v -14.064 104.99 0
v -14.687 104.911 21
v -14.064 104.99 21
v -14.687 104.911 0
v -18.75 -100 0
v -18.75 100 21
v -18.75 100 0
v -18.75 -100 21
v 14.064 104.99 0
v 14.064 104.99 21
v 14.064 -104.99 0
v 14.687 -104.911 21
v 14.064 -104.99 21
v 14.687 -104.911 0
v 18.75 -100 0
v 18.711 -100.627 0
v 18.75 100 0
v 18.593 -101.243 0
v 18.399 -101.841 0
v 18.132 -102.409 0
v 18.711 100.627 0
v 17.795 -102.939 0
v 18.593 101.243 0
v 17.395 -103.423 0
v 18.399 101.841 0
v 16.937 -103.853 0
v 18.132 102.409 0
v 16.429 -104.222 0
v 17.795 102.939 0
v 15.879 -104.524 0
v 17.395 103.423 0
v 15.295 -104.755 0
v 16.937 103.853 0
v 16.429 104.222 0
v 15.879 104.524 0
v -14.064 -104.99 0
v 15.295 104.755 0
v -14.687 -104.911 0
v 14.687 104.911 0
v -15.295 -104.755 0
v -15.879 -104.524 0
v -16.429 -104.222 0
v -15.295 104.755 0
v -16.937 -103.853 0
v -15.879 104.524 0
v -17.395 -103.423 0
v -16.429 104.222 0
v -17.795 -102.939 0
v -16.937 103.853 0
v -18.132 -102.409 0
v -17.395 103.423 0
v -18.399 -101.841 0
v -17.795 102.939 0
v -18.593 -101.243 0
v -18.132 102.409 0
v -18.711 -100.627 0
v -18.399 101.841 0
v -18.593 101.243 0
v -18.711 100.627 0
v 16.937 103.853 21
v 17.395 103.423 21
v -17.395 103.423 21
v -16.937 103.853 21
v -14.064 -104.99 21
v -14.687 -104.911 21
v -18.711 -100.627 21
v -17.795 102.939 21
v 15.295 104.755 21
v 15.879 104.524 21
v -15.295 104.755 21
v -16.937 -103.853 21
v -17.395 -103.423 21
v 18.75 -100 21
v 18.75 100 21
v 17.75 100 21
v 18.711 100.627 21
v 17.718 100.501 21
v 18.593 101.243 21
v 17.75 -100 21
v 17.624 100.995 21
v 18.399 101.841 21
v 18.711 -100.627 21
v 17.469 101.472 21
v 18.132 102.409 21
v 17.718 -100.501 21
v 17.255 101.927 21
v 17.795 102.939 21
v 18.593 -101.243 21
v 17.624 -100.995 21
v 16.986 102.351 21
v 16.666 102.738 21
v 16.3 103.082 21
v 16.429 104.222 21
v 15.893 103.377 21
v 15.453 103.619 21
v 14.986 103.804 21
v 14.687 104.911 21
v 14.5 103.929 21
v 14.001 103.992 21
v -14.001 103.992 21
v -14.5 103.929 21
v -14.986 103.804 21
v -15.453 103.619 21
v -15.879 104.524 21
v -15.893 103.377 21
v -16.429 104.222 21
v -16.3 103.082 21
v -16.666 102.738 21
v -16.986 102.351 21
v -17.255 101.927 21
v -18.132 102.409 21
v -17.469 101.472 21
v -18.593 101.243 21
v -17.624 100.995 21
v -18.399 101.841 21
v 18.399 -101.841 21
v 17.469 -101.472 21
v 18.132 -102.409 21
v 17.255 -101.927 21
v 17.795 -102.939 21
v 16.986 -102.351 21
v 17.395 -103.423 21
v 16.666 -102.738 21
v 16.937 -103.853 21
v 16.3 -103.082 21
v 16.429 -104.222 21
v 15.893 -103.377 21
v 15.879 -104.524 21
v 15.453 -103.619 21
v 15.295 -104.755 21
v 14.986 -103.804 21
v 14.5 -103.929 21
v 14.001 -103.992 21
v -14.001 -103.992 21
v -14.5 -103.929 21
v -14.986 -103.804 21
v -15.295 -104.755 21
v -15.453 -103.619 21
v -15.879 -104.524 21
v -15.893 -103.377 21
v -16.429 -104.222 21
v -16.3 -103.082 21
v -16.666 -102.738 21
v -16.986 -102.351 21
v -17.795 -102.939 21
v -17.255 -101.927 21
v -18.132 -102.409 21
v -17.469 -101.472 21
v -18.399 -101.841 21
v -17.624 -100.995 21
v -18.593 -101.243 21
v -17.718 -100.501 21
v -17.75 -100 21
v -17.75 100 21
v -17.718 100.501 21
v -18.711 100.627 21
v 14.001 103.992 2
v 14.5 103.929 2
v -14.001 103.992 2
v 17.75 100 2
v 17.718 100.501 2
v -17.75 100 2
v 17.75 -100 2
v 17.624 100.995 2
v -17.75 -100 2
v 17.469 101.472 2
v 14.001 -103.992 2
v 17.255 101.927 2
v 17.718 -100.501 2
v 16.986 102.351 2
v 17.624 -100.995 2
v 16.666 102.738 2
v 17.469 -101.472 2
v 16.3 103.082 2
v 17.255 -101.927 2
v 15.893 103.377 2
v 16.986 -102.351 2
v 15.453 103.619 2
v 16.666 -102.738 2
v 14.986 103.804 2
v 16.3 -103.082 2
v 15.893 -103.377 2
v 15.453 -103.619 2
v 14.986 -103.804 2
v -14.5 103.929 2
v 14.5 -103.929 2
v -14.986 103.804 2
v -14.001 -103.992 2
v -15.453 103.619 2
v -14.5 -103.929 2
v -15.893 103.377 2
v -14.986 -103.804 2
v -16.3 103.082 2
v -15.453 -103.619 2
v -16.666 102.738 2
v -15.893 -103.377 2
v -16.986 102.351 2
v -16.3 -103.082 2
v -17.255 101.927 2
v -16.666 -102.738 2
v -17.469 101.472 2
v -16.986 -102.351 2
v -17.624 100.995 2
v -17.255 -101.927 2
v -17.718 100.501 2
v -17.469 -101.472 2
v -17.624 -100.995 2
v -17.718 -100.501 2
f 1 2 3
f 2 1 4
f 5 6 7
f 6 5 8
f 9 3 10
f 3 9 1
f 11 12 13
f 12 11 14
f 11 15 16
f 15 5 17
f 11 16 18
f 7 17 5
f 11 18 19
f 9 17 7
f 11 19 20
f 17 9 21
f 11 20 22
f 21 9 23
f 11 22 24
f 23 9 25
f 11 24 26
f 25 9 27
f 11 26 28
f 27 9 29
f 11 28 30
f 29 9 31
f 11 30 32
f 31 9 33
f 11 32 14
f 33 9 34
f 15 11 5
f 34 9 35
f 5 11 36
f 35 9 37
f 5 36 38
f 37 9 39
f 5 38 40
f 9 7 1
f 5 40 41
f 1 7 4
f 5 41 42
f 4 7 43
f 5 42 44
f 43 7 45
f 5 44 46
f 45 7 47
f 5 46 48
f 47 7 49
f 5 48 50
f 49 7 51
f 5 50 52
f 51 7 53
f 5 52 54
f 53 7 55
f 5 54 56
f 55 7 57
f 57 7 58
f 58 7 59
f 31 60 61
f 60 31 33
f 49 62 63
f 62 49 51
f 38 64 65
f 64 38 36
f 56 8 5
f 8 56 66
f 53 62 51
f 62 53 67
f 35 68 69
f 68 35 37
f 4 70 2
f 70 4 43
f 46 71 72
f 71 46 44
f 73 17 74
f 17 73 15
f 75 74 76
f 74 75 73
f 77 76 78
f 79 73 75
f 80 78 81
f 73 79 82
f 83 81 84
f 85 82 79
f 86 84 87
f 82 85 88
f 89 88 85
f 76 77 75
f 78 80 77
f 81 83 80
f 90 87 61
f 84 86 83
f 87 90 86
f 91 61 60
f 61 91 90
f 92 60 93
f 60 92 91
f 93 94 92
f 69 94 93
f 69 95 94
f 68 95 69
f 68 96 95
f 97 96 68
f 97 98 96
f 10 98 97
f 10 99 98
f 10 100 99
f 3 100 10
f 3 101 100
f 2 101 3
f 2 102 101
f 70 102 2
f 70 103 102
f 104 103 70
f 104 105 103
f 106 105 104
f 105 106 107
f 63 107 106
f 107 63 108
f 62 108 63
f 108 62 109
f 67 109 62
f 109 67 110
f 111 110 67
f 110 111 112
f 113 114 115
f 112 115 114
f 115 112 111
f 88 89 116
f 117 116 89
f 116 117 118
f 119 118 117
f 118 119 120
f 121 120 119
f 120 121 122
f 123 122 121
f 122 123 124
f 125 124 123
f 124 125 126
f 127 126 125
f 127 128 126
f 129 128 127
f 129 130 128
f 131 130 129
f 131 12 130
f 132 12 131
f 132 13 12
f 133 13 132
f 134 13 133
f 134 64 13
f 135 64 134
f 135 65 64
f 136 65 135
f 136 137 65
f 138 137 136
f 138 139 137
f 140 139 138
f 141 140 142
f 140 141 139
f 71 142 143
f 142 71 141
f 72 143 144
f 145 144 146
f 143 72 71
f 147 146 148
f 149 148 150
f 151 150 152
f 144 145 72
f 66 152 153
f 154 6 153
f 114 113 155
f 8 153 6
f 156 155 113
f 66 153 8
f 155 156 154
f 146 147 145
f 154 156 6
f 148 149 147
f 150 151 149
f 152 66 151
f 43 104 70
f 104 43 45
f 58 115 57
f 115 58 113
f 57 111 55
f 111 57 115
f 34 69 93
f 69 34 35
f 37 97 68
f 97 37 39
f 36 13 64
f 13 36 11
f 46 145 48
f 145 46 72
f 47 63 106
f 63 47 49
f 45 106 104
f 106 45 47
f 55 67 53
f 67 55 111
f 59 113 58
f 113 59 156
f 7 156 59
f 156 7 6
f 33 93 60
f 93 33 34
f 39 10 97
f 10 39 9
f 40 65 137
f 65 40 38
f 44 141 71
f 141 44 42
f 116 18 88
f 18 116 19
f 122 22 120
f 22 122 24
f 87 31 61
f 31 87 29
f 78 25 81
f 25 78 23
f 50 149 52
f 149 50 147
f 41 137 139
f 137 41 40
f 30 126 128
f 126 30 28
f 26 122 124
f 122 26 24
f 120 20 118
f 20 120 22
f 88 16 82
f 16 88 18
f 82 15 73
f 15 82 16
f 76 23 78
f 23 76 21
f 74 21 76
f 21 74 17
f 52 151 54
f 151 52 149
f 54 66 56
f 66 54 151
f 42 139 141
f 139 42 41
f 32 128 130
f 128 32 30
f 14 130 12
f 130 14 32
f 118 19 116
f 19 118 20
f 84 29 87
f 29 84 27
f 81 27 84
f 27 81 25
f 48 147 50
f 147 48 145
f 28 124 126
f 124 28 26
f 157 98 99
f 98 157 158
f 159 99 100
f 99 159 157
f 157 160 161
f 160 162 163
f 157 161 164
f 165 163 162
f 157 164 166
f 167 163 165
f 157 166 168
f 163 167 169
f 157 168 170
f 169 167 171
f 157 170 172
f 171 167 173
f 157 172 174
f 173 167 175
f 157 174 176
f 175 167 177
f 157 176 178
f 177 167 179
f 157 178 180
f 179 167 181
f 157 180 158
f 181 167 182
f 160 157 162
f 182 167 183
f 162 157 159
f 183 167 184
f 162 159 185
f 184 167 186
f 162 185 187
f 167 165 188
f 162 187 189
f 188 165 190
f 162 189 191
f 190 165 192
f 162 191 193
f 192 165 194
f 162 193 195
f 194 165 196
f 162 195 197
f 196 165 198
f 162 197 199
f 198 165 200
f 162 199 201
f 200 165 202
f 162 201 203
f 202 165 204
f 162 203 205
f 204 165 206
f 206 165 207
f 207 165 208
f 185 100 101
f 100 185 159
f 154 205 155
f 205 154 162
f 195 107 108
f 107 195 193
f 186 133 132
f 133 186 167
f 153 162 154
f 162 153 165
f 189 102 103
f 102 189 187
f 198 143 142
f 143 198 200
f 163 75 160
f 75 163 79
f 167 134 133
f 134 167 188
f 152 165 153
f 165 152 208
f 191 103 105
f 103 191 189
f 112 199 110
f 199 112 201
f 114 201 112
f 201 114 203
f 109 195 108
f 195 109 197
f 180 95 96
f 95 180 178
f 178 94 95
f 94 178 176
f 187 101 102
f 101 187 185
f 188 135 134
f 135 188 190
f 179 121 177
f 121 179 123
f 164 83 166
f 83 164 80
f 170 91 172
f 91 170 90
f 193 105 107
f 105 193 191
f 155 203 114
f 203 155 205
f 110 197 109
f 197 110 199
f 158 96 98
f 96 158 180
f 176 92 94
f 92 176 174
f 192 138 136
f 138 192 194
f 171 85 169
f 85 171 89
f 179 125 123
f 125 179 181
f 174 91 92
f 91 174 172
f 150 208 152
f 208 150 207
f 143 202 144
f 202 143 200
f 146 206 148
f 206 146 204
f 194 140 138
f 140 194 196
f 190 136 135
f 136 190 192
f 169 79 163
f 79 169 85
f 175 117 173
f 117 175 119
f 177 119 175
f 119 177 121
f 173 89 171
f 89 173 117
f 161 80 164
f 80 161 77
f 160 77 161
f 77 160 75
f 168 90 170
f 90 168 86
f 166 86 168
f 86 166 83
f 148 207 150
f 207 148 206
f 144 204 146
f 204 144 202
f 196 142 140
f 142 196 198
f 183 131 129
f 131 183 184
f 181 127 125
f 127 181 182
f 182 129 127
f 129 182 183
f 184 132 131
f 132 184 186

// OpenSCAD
$fn = 50;


difference() {
	union() {
		hull() {
			translate(v = [-13.7500000000, 100.0000000000, 0]) {
				cylinder(h = 21, r = 5);
			}
			translate(v = [13.7500000000, 100.0000000000, 0]) {
				cylinder(h = 21, r = 5);
			}
			translate(v = [-13.7500000000, -100.0000000000, 0]) {
				cylinder(h = 21, r = 5);
			}
			translate(v = [13.7500000000, -100.0000000000, 0]) {
				cylinder(h = 21, r = 5);
			}
		}
	}
	union() {
		translate(v = [0, 0, 2]) {
			hull() {
				translate(v = [-13.7500000000, 100.0000000000, 0]) {
					cylinder(h = 19, r = 4);
				}
				translate(v = [13.7500000000, 100.0000000000, 0]) {
					cylinder(h = 19, r = 4);
				}
				translate(v = [-13.7500000000, -100.0000000000, 0]) {
					cylinder(h = 19, r = 4);
				}
				translate(v = [13.7500000000, -100.0000000000, 0]) {
					cylinder(h = 19, r = 4);
				}
			}
		}
	}
}
